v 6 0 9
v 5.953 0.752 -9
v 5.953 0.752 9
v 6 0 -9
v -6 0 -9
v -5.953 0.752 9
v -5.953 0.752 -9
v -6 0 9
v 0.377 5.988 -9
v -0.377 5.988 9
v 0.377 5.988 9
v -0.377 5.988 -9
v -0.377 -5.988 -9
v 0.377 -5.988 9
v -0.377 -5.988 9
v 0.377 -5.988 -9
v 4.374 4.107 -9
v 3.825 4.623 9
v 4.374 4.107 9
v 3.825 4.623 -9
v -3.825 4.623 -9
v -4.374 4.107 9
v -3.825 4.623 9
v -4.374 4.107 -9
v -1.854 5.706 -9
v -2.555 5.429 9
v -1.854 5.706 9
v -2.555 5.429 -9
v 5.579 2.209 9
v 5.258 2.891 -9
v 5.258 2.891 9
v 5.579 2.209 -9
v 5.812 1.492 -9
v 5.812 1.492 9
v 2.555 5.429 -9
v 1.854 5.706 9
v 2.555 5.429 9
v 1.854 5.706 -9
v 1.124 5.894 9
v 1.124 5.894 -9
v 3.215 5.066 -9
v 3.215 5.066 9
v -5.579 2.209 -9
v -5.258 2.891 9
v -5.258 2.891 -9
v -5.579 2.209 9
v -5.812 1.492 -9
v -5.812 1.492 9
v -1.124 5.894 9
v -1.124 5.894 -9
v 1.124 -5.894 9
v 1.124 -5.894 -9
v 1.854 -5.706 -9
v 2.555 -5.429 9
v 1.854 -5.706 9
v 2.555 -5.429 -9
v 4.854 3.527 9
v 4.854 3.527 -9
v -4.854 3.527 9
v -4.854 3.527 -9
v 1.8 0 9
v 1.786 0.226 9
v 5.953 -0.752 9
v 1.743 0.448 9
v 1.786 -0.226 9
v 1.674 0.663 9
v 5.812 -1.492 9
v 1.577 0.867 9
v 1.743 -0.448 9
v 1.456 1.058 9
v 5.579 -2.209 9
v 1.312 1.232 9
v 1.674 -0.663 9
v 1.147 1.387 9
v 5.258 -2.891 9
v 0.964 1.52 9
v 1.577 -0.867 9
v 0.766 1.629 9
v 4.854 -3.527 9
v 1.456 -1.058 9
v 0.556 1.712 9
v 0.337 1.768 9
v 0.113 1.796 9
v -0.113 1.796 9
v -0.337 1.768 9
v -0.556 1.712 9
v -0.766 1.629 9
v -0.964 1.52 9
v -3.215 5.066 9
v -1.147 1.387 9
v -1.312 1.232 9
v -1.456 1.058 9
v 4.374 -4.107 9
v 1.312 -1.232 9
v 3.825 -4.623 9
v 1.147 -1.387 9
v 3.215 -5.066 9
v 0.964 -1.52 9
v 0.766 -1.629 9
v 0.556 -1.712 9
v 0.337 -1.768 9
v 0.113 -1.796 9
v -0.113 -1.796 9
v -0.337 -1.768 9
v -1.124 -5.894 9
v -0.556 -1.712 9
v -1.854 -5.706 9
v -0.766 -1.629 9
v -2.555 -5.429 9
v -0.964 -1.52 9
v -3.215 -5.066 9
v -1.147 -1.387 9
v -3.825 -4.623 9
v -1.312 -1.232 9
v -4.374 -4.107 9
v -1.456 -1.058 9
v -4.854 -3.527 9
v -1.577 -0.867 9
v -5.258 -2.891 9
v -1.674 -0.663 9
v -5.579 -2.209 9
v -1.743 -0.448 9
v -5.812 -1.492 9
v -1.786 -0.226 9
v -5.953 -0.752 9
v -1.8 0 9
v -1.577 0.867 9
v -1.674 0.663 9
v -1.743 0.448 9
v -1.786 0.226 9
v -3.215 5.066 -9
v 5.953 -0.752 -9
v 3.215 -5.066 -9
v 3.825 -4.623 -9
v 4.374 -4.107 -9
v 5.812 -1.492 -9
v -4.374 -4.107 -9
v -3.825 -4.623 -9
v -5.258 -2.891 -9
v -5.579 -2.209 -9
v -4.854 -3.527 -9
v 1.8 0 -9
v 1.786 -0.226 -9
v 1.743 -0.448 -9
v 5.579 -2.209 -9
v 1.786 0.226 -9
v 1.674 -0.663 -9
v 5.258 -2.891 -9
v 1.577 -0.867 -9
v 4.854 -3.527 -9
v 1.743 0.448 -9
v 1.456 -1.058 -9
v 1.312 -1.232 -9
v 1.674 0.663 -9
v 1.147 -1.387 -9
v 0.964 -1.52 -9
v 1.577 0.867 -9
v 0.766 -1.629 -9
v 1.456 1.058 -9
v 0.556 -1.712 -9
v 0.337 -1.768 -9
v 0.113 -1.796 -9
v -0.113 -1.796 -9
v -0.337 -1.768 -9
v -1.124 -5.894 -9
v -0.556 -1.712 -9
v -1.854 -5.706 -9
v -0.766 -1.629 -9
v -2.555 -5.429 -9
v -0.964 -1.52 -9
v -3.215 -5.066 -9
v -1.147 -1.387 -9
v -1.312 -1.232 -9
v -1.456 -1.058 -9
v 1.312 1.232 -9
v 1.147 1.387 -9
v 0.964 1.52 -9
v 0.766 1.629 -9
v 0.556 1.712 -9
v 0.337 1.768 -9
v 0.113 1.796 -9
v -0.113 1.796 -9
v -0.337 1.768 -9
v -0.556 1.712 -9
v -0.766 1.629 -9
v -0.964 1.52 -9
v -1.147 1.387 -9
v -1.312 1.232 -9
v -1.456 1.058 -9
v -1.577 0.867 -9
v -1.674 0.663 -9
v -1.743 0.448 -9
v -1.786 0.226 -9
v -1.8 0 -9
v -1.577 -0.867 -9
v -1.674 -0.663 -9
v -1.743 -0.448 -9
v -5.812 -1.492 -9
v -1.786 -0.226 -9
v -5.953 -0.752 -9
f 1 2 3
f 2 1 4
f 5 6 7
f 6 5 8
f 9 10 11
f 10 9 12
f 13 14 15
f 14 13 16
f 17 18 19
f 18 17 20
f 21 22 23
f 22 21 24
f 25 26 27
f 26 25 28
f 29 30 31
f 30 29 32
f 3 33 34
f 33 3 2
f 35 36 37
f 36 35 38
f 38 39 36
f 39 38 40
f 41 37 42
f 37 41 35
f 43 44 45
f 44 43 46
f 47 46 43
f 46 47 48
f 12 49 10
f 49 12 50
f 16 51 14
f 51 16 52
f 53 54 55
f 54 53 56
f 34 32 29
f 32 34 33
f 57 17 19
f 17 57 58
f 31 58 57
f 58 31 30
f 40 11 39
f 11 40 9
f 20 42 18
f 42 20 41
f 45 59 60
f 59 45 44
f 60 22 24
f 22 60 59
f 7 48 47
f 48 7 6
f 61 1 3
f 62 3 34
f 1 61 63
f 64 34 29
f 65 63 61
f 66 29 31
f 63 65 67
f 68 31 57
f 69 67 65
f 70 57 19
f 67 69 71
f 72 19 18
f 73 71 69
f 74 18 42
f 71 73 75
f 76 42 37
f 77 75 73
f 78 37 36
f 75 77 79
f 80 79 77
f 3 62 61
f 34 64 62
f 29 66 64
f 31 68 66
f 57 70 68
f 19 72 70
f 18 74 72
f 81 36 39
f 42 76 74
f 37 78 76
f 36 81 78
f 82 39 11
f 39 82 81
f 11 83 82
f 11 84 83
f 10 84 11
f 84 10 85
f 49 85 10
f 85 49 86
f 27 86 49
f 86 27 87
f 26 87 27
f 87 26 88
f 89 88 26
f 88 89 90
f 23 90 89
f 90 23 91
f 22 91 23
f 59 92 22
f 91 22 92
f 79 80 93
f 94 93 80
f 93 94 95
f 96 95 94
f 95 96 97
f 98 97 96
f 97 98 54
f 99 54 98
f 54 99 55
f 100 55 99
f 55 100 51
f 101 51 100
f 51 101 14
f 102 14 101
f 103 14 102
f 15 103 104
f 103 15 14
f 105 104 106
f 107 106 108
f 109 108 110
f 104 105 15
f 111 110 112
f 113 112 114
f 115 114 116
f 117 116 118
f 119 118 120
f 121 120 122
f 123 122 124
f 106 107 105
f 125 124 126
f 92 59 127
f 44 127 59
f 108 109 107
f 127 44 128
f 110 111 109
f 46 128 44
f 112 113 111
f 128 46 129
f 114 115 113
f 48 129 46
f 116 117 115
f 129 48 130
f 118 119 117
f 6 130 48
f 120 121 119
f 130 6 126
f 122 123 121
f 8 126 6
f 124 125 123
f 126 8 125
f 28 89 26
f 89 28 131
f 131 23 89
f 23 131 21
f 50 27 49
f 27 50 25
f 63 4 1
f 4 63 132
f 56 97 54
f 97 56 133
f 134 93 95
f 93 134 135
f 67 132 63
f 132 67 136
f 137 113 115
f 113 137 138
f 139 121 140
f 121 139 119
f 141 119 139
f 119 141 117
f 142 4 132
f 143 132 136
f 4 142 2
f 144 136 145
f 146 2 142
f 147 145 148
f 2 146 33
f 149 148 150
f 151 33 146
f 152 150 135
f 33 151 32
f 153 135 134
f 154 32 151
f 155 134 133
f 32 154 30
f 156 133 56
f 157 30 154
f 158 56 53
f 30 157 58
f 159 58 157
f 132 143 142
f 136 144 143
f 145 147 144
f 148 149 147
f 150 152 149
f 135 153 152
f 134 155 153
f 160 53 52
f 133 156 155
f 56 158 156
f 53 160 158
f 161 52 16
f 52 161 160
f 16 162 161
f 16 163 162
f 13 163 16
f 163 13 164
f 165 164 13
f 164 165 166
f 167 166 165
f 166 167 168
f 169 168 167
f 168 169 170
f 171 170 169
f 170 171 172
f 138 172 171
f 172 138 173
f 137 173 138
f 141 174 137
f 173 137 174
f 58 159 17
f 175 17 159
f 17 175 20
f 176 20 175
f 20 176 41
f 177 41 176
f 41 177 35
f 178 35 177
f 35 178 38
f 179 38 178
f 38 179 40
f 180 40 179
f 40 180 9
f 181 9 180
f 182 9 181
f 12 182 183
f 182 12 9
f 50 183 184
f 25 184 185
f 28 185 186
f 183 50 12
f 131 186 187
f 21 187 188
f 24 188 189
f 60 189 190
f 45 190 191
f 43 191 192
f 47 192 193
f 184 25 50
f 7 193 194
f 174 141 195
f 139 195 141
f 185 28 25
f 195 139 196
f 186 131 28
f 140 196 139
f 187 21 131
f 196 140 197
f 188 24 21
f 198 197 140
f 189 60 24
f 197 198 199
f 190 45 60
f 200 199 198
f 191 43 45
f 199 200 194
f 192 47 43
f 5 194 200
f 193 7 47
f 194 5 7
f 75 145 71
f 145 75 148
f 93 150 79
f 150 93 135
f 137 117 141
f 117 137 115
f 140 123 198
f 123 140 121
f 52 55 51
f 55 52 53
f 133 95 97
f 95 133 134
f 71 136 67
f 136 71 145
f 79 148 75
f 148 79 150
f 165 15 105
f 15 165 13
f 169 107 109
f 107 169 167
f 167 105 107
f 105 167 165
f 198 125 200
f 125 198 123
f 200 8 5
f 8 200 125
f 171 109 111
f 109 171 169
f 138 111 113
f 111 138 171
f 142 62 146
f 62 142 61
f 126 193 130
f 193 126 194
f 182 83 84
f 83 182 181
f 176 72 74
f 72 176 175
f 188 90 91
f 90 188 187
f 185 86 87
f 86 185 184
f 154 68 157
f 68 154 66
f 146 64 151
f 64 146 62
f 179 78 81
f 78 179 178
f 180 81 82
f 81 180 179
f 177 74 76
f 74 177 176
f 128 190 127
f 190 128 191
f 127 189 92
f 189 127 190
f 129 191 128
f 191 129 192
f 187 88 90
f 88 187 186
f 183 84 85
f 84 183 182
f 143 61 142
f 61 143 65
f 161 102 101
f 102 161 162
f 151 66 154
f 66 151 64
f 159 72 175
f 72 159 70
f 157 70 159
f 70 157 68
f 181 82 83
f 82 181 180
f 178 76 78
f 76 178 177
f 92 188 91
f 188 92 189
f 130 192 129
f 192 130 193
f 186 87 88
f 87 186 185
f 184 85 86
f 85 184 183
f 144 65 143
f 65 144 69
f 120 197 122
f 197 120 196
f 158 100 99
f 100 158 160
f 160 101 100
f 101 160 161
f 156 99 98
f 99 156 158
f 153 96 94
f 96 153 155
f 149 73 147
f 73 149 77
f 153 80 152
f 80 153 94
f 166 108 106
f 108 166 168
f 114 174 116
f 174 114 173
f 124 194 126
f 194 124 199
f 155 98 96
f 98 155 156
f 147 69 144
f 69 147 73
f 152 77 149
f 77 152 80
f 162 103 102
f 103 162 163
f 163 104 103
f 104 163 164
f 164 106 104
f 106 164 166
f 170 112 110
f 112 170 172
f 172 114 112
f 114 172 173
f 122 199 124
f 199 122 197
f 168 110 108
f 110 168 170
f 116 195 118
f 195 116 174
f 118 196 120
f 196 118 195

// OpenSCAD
$fn = 50;


difference() {
	union() {
		translate(v = [0, 0, -9.0000000000]) {
			cylinder(h = 18, r = 6.0000000000);
		}
	}
	union() {
		translate(v = [0, 0, -100.0000000000]) {
			cylinder(h = 200, r = 1.8000000000);
		}
	}
}
